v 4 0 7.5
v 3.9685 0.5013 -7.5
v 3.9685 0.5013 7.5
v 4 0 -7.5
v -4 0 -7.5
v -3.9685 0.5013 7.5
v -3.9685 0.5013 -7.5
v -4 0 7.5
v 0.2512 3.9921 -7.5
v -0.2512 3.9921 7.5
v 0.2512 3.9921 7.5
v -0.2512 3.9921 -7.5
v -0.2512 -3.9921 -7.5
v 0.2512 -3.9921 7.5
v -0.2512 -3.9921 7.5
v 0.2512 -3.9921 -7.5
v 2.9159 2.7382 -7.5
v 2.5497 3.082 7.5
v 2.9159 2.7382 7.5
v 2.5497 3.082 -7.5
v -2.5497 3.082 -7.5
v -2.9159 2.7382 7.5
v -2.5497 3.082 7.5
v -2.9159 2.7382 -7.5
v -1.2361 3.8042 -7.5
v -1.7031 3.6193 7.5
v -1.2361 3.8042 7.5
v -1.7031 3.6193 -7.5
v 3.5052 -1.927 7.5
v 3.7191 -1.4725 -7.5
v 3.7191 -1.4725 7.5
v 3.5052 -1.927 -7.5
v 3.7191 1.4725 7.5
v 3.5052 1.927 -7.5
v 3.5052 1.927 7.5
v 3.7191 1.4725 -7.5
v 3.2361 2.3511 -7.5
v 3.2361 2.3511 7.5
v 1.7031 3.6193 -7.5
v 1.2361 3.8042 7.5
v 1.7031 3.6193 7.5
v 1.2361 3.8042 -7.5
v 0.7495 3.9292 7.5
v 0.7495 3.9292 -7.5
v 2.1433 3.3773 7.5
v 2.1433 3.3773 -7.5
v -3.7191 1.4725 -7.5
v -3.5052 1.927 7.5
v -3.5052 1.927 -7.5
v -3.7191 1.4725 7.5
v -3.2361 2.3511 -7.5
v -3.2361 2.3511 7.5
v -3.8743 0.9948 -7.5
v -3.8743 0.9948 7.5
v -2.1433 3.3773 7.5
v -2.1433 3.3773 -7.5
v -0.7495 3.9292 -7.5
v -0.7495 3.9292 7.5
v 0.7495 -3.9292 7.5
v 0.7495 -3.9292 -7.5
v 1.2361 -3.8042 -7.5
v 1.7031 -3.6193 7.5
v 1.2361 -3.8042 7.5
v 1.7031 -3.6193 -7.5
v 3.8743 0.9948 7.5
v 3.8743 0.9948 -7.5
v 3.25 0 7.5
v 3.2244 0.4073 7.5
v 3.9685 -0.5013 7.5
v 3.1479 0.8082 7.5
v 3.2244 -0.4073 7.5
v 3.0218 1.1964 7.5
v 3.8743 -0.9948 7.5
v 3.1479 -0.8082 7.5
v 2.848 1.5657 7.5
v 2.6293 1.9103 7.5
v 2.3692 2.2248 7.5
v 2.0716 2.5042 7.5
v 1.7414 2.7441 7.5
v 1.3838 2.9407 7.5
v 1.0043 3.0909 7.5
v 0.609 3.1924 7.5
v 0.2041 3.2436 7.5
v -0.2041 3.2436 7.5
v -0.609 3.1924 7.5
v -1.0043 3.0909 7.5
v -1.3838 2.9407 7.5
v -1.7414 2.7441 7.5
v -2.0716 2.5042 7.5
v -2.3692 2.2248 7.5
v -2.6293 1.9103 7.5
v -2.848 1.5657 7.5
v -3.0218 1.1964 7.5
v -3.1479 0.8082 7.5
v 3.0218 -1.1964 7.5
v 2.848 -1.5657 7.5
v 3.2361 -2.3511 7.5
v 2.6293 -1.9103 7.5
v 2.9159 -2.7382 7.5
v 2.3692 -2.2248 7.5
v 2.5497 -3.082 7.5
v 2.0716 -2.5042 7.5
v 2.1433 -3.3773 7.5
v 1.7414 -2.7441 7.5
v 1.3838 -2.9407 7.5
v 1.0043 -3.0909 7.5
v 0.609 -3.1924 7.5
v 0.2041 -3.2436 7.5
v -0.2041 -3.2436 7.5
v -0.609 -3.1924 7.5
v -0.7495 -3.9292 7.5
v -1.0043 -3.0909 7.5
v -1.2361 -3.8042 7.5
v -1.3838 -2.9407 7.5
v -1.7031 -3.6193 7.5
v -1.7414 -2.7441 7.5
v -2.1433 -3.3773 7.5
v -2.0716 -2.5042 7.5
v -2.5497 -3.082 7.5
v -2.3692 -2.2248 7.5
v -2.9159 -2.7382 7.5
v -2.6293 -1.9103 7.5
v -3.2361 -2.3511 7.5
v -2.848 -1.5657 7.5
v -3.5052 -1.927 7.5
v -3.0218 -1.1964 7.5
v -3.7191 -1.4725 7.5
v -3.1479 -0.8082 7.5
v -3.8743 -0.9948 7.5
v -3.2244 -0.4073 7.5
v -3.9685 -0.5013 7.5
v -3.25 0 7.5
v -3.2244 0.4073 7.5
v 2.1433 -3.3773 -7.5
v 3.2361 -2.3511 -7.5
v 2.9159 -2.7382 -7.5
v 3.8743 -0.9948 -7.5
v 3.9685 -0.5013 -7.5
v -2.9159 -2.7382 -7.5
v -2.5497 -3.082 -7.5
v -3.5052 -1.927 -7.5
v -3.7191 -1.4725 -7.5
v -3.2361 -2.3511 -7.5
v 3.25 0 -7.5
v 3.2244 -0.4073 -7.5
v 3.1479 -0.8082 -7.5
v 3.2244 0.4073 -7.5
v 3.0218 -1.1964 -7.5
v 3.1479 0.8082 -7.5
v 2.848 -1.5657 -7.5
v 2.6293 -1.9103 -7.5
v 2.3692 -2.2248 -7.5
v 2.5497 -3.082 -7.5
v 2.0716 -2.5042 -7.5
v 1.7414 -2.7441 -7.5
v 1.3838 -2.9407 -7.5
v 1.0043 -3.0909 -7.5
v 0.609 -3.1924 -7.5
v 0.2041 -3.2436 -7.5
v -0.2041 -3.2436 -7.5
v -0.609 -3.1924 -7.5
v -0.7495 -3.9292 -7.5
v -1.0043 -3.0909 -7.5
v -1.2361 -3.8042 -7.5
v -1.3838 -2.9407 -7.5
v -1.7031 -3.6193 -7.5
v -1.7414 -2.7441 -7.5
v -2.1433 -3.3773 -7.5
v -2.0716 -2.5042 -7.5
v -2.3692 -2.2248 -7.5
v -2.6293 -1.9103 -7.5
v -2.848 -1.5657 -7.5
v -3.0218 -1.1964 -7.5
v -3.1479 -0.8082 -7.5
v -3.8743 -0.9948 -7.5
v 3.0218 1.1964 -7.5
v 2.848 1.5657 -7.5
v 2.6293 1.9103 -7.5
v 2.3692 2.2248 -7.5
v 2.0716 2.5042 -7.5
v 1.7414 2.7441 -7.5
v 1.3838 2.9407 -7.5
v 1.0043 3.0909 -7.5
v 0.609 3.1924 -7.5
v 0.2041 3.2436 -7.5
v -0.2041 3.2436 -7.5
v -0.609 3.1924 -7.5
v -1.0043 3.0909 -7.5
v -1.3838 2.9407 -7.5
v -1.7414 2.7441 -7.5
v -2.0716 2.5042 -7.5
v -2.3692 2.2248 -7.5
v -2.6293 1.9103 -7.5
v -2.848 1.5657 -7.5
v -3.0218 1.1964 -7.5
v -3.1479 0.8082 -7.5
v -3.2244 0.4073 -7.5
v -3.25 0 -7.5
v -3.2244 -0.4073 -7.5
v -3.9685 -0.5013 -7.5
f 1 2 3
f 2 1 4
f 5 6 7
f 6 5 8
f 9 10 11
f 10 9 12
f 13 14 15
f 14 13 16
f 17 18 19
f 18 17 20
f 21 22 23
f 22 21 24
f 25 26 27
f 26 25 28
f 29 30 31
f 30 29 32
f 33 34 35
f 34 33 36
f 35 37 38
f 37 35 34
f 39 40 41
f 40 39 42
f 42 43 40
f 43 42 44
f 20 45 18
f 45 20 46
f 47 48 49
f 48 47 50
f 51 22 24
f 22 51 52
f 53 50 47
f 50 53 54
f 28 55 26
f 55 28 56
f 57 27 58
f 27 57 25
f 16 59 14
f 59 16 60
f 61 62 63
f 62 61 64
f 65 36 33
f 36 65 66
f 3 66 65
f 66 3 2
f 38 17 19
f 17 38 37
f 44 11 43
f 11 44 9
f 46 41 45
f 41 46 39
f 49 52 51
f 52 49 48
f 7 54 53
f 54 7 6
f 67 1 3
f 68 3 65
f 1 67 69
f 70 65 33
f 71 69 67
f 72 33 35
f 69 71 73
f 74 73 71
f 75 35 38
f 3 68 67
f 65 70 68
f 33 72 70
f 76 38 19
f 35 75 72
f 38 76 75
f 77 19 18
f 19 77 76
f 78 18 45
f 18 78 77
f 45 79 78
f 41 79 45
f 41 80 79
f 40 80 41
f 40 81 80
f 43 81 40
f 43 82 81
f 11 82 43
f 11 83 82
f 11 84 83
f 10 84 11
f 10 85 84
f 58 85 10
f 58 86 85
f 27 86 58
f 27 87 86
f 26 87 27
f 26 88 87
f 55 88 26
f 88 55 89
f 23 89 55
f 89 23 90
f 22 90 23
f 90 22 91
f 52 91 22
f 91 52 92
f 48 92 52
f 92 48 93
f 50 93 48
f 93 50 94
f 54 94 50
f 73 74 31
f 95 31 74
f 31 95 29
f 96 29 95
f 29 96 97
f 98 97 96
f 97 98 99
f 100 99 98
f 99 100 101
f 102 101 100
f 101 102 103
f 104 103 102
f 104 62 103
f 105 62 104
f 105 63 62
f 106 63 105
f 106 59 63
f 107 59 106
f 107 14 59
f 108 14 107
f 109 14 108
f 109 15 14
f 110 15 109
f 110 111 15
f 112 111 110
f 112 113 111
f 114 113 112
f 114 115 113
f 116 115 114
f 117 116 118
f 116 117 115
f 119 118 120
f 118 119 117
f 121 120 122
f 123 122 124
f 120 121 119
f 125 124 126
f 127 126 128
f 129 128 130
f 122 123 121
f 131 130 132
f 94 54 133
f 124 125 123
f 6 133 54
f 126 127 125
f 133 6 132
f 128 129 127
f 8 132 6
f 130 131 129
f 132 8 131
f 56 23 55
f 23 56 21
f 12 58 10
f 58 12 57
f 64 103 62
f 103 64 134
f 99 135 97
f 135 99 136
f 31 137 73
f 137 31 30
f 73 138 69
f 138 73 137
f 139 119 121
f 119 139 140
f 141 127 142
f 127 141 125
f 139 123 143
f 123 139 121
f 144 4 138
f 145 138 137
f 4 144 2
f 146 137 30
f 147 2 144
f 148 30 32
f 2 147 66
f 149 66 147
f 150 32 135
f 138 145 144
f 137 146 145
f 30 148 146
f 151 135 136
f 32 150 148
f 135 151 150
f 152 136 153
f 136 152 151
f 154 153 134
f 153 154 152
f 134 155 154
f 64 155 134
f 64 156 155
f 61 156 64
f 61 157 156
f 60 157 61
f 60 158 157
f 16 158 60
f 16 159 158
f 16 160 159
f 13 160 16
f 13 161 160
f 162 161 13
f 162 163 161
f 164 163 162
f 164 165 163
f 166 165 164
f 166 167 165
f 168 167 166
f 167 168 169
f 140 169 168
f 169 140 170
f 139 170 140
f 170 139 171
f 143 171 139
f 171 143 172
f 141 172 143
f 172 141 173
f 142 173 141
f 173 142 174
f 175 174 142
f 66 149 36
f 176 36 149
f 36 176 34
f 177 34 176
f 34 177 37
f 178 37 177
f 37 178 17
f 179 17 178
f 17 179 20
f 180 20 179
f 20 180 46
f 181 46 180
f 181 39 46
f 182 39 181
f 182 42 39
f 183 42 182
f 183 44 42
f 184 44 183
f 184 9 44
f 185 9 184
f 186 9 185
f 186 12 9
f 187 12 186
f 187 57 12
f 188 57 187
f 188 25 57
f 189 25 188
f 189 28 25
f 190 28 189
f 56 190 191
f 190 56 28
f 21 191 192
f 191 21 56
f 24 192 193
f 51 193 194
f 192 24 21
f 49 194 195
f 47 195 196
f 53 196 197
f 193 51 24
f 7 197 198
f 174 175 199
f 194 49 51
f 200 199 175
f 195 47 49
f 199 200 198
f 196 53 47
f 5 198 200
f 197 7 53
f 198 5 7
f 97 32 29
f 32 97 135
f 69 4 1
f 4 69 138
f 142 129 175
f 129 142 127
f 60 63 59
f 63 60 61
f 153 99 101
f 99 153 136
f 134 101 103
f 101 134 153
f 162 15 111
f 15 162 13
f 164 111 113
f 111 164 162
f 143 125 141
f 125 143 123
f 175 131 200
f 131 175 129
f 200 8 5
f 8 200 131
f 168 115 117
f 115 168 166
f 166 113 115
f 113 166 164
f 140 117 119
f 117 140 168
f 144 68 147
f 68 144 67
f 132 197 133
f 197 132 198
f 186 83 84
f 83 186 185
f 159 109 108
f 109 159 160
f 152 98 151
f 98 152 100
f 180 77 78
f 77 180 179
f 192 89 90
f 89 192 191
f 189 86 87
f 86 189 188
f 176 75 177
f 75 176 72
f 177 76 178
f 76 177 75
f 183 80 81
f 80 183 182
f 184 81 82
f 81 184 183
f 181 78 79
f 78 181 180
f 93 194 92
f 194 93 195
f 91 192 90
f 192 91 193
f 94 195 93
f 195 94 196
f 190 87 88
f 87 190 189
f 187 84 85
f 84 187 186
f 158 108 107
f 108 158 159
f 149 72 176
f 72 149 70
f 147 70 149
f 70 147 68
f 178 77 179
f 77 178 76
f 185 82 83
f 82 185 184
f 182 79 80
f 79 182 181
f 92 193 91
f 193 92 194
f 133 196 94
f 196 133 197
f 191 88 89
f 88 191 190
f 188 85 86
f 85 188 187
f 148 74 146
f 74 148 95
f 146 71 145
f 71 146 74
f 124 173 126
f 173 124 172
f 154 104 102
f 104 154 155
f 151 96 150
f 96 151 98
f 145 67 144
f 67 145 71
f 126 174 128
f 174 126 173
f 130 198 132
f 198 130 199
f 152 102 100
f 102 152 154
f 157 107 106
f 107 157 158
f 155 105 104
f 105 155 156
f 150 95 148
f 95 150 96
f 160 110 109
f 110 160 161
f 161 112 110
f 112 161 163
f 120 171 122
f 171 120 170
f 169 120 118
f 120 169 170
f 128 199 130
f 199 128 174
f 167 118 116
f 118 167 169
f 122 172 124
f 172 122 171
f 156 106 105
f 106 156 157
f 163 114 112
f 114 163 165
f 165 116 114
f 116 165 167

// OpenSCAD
$fn = 50;


difference() {
	union() {
		translate(v = [0, 0, -7.5000000000]) {
			cylinder(h = 15, r = 4.0000000000);
		}
	}
	union() {
		translate(v = [0, 0, -100.0000000000]) {
			cylinder(h = 200, r = 3.2500000000);
		}
	}
}
